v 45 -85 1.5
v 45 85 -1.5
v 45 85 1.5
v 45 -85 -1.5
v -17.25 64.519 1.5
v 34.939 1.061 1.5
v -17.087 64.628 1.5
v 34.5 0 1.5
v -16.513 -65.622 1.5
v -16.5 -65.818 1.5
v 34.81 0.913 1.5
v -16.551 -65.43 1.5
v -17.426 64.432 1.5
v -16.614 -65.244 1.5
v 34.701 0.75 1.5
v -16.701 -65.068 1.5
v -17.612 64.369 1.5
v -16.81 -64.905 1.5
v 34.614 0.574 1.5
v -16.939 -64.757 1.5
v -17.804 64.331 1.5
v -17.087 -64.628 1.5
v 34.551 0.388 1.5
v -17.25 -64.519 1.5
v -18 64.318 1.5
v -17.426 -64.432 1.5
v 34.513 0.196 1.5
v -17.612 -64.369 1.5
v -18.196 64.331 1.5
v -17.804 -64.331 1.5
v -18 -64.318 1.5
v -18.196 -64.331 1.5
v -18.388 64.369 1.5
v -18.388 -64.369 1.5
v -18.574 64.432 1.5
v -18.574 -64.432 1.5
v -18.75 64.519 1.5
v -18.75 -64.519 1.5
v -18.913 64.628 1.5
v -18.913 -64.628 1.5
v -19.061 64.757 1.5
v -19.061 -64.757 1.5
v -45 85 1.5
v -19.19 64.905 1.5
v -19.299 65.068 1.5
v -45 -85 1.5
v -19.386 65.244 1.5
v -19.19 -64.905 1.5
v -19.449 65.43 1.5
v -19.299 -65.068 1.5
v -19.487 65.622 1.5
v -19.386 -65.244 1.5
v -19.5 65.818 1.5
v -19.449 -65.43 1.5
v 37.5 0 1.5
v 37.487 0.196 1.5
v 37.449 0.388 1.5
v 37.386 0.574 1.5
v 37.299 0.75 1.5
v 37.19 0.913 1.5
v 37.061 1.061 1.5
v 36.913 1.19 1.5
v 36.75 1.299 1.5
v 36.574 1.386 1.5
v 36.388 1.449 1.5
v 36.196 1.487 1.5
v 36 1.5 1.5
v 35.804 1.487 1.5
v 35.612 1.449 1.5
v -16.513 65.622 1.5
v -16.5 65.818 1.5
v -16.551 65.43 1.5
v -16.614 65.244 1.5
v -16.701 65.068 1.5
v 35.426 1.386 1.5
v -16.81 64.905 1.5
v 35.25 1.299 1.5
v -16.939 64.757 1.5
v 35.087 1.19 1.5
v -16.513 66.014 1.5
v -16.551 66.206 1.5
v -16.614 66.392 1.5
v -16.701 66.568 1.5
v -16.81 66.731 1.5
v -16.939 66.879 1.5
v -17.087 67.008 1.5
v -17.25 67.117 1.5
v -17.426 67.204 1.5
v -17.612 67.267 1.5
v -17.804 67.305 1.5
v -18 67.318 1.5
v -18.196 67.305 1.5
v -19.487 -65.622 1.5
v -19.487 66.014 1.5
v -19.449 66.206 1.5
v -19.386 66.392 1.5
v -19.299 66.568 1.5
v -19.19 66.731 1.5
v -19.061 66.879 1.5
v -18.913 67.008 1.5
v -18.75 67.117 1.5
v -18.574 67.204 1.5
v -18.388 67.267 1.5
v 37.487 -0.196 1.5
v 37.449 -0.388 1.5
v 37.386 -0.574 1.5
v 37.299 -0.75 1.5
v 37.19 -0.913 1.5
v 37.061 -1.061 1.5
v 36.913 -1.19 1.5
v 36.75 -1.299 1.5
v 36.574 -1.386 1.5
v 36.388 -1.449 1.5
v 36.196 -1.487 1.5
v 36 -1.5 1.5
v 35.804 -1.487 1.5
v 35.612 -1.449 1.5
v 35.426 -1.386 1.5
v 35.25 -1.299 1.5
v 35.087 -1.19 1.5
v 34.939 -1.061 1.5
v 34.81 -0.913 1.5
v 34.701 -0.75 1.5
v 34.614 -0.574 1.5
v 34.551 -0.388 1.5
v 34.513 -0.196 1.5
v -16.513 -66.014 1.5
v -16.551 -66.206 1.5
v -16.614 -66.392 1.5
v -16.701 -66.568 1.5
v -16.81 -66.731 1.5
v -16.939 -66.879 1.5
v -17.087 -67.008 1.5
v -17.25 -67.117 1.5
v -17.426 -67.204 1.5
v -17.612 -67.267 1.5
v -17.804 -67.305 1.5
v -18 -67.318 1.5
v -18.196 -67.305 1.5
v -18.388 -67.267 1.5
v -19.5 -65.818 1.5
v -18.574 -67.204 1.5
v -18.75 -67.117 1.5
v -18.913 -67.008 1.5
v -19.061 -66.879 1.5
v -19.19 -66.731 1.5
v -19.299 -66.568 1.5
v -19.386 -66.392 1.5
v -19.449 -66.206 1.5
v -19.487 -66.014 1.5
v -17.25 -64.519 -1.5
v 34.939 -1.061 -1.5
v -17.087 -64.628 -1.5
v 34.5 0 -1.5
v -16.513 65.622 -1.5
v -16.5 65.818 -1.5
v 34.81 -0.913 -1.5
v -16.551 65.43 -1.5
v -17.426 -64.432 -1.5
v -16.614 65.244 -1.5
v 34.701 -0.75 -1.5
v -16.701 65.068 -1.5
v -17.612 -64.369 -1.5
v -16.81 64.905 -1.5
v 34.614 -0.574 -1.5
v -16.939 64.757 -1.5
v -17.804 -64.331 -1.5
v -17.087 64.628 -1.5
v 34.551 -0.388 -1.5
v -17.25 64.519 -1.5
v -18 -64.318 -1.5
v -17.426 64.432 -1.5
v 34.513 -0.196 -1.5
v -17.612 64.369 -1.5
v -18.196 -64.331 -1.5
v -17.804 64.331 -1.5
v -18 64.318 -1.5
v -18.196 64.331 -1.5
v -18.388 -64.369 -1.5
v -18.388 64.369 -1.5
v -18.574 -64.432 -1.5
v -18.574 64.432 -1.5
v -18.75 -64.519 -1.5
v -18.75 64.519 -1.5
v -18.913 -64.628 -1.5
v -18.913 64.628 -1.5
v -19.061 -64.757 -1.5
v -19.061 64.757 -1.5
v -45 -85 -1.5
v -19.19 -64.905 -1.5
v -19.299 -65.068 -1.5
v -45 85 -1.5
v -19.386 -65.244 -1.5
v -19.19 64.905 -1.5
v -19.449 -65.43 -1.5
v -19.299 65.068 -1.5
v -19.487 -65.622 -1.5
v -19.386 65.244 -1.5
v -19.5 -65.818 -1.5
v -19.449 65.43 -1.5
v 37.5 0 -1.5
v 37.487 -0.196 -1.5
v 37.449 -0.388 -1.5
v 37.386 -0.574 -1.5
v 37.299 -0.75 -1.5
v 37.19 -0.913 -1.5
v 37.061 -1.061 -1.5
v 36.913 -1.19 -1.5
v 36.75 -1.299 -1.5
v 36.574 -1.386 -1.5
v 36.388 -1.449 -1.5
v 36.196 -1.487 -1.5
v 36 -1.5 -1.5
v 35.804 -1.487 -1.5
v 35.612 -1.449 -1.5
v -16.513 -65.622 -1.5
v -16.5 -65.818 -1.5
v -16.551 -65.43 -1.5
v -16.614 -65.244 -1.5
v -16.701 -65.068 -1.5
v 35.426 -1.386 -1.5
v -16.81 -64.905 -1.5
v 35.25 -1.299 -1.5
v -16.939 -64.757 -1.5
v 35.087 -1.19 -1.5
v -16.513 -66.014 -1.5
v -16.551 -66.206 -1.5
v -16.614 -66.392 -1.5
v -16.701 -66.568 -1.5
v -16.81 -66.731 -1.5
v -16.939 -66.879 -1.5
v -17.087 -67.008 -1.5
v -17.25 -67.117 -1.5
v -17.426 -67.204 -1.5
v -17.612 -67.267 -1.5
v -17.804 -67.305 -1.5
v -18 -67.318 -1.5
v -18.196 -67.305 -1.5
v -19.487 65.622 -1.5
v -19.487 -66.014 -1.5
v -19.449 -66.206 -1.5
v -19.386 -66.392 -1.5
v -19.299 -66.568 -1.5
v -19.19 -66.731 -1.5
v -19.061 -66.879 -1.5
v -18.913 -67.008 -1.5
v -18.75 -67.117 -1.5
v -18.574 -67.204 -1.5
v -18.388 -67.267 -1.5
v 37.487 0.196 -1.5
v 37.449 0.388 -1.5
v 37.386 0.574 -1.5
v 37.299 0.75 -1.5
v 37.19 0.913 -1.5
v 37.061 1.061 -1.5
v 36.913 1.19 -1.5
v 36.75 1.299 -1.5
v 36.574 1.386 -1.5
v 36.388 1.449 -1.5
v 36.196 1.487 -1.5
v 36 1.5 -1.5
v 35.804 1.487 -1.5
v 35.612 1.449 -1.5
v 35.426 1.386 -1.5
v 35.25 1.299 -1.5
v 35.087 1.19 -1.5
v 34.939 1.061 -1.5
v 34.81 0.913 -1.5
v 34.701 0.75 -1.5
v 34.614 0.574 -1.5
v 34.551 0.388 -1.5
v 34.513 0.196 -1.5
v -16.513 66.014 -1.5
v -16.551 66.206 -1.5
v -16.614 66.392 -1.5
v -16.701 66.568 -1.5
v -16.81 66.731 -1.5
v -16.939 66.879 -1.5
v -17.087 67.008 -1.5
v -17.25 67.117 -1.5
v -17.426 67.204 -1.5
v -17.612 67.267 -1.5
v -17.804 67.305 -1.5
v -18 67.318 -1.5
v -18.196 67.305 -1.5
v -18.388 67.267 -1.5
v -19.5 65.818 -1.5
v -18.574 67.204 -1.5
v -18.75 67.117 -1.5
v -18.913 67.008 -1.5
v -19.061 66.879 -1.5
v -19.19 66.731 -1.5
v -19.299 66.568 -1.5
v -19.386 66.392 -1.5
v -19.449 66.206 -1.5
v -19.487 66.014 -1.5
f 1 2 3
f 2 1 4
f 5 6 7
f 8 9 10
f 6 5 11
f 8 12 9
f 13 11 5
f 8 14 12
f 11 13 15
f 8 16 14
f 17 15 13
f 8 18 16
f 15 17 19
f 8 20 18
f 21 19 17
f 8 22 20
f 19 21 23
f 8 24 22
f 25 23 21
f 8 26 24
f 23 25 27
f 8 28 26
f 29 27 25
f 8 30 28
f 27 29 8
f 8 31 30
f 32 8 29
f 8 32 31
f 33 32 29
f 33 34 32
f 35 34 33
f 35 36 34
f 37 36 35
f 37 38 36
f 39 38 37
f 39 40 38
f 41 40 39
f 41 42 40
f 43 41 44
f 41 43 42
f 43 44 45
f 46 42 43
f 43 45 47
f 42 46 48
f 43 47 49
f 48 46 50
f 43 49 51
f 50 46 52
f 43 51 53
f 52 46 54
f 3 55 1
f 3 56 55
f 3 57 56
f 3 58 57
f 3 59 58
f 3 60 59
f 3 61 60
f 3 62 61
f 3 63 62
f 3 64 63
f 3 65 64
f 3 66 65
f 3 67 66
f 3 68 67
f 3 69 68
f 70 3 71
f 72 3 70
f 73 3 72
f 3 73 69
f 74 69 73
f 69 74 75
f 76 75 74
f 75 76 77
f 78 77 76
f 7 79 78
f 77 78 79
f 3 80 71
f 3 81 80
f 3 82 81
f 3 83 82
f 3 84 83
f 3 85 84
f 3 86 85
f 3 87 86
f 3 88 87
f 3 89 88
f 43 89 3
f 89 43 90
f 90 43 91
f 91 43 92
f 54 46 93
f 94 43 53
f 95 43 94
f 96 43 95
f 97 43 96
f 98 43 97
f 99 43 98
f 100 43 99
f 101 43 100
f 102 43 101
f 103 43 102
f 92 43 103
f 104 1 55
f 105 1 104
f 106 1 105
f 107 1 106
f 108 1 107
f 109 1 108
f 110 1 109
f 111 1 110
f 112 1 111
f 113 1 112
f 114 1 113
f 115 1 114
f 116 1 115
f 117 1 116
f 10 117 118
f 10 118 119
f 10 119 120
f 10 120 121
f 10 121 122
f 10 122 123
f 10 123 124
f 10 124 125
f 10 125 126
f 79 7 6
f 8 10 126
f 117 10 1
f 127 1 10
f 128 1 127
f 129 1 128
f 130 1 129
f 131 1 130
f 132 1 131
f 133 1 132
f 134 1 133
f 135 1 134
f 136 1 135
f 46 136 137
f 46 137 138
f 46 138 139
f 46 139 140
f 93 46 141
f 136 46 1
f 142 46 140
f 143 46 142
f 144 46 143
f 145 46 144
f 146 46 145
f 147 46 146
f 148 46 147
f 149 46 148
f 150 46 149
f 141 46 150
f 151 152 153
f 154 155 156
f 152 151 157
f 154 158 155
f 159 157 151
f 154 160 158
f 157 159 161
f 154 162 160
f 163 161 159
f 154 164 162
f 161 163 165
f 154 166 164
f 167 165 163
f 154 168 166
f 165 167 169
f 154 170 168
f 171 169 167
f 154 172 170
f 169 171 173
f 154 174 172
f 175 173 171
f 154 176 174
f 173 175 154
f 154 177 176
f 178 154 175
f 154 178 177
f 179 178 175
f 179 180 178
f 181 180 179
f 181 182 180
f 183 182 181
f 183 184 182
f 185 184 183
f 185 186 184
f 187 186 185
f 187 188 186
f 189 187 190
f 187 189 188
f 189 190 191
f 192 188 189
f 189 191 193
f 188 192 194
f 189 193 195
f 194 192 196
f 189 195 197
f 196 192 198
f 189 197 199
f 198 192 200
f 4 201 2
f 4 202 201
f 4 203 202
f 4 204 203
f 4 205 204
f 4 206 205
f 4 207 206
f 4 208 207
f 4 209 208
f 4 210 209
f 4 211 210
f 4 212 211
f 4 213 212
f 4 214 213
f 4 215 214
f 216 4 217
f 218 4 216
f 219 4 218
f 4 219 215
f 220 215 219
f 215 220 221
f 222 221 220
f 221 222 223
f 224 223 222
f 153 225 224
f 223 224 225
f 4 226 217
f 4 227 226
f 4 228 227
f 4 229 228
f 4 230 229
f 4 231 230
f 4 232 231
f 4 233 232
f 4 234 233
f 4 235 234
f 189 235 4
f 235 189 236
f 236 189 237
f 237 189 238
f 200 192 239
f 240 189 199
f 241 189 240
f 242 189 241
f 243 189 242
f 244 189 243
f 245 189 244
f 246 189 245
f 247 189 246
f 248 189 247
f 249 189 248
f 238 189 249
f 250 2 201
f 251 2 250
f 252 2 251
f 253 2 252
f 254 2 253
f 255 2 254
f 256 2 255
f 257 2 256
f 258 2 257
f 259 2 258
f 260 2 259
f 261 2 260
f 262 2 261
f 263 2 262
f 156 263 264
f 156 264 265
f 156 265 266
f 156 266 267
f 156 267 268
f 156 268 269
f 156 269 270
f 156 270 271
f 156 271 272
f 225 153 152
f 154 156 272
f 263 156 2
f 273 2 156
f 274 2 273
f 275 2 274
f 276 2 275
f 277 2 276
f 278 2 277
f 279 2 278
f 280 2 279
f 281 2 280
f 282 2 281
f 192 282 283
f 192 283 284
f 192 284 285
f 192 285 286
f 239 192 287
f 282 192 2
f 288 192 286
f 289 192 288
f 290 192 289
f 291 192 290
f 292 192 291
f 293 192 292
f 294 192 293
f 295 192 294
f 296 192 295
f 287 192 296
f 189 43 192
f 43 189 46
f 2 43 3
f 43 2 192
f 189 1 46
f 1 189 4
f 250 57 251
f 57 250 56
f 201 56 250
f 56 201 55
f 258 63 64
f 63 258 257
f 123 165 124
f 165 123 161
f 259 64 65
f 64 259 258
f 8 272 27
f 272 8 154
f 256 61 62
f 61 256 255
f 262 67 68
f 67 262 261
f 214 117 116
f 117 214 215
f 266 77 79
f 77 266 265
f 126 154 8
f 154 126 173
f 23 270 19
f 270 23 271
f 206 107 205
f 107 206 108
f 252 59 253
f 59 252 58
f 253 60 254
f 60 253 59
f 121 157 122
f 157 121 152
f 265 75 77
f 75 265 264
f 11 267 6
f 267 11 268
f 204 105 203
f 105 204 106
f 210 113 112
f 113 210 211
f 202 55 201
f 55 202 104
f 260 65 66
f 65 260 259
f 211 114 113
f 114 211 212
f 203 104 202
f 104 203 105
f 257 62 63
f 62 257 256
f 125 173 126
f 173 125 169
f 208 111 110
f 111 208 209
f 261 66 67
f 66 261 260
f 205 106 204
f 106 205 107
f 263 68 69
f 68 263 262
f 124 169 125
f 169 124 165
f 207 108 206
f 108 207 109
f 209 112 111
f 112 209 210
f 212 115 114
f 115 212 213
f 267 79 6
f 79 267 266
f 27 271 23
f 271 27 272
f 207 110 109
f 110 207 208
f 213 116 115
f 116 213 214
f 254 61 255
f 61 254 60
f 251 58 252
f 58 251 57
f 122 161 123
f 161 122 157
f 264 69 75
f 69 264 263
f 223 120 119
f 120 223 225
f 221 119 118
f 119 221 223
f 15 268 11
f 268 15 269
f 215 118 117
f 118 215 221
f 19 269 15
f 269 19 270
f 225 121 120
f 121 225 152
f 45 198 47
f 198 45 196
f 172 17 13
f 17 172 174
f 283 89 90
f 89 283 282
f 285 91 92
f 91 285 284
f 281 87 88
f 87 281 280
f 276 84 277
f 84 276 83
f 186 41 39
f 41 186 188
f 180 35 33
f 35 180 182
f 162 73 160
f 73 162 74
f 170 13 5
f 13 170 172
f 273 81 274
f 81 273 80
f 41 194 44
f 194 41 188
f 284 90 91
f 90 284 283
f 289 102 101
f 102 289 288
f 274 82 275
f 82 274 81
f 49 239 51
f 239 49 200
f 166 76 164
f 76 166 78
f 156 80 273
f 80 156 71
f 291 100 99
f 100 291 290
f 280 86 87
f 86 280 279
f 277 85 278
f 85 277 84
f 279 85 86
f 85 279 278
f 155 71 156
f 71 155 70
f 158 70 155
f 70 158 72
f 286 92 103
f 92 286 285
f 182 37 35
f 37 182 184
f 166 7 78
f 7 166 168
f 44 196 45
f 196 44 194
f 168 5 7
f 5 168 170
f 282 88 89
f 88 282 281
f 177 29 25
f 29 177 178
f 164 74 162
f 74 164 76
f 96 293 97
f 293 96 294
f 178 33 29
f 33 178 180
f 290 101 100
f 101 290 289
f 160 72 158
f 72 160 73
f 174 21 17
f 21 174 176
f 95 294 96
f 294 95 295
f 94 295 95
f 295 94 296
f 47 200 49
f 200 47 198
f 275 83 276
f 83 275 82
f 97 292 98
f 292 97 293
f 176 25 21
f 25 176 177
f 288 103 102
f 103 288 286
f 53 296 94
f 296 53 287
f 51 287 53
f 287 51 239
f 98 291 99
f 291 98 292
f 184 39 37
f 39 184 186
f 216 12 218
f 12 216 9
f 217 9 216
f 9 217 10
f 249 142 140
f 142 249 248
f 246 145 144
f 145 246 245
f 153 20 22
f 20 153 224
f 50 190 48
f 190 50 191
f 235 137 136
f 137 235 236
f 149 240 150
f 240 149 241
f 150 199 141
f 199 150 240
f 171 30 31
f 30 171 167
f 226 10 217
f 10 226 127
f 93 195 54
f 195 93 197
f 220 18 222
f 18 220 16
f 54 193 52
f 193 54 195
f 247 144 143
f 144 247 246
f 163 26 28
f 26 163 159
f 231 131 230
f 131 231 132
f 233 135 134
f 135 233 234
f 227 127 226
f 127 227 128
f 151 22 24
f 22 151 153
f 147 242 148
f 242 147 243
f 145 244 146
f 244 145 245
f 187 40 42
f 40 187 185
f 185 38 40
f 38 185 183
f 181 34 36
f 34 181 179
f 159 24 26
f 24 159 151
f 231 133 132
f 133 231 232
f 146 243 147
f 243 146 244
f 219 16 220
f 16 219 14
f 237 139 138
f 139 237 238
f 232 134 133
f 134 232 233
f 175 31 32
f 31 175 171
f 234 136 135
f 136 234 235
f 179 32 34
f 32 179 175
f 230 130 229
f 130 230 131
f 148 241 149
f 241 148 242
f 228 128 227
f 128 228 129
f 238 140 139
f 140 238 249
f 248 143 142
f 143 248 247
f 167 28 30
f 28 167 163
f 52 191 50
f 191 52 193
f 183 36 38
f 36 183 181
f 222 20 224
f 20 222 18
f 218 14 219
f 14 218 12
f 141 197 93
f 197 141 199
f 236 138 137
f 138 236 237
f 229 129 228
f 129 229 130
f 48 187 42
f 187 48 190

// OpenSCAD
// ========================================
// a 90 x 170 x 3 mm plate with three 3 mm holes
// NeuroCAD canonical IR; dimensions are millimetres
// ========================================
$fn = 48;

difference() {
  cube(size=[90, 170, 3], center=true);
  translate([36, 0, 0]) {
    cylinder(r=1.5, h=5, center=true);
  }
  translate([-18, 65.8179306876173, 0]) {
    cylinder(r=1.5, h=5, center=true);
  }
  translate([-18, -65.8179306876173, 0]) {
    cylinder(r=1.5, h=5, center=true);
  }
}
